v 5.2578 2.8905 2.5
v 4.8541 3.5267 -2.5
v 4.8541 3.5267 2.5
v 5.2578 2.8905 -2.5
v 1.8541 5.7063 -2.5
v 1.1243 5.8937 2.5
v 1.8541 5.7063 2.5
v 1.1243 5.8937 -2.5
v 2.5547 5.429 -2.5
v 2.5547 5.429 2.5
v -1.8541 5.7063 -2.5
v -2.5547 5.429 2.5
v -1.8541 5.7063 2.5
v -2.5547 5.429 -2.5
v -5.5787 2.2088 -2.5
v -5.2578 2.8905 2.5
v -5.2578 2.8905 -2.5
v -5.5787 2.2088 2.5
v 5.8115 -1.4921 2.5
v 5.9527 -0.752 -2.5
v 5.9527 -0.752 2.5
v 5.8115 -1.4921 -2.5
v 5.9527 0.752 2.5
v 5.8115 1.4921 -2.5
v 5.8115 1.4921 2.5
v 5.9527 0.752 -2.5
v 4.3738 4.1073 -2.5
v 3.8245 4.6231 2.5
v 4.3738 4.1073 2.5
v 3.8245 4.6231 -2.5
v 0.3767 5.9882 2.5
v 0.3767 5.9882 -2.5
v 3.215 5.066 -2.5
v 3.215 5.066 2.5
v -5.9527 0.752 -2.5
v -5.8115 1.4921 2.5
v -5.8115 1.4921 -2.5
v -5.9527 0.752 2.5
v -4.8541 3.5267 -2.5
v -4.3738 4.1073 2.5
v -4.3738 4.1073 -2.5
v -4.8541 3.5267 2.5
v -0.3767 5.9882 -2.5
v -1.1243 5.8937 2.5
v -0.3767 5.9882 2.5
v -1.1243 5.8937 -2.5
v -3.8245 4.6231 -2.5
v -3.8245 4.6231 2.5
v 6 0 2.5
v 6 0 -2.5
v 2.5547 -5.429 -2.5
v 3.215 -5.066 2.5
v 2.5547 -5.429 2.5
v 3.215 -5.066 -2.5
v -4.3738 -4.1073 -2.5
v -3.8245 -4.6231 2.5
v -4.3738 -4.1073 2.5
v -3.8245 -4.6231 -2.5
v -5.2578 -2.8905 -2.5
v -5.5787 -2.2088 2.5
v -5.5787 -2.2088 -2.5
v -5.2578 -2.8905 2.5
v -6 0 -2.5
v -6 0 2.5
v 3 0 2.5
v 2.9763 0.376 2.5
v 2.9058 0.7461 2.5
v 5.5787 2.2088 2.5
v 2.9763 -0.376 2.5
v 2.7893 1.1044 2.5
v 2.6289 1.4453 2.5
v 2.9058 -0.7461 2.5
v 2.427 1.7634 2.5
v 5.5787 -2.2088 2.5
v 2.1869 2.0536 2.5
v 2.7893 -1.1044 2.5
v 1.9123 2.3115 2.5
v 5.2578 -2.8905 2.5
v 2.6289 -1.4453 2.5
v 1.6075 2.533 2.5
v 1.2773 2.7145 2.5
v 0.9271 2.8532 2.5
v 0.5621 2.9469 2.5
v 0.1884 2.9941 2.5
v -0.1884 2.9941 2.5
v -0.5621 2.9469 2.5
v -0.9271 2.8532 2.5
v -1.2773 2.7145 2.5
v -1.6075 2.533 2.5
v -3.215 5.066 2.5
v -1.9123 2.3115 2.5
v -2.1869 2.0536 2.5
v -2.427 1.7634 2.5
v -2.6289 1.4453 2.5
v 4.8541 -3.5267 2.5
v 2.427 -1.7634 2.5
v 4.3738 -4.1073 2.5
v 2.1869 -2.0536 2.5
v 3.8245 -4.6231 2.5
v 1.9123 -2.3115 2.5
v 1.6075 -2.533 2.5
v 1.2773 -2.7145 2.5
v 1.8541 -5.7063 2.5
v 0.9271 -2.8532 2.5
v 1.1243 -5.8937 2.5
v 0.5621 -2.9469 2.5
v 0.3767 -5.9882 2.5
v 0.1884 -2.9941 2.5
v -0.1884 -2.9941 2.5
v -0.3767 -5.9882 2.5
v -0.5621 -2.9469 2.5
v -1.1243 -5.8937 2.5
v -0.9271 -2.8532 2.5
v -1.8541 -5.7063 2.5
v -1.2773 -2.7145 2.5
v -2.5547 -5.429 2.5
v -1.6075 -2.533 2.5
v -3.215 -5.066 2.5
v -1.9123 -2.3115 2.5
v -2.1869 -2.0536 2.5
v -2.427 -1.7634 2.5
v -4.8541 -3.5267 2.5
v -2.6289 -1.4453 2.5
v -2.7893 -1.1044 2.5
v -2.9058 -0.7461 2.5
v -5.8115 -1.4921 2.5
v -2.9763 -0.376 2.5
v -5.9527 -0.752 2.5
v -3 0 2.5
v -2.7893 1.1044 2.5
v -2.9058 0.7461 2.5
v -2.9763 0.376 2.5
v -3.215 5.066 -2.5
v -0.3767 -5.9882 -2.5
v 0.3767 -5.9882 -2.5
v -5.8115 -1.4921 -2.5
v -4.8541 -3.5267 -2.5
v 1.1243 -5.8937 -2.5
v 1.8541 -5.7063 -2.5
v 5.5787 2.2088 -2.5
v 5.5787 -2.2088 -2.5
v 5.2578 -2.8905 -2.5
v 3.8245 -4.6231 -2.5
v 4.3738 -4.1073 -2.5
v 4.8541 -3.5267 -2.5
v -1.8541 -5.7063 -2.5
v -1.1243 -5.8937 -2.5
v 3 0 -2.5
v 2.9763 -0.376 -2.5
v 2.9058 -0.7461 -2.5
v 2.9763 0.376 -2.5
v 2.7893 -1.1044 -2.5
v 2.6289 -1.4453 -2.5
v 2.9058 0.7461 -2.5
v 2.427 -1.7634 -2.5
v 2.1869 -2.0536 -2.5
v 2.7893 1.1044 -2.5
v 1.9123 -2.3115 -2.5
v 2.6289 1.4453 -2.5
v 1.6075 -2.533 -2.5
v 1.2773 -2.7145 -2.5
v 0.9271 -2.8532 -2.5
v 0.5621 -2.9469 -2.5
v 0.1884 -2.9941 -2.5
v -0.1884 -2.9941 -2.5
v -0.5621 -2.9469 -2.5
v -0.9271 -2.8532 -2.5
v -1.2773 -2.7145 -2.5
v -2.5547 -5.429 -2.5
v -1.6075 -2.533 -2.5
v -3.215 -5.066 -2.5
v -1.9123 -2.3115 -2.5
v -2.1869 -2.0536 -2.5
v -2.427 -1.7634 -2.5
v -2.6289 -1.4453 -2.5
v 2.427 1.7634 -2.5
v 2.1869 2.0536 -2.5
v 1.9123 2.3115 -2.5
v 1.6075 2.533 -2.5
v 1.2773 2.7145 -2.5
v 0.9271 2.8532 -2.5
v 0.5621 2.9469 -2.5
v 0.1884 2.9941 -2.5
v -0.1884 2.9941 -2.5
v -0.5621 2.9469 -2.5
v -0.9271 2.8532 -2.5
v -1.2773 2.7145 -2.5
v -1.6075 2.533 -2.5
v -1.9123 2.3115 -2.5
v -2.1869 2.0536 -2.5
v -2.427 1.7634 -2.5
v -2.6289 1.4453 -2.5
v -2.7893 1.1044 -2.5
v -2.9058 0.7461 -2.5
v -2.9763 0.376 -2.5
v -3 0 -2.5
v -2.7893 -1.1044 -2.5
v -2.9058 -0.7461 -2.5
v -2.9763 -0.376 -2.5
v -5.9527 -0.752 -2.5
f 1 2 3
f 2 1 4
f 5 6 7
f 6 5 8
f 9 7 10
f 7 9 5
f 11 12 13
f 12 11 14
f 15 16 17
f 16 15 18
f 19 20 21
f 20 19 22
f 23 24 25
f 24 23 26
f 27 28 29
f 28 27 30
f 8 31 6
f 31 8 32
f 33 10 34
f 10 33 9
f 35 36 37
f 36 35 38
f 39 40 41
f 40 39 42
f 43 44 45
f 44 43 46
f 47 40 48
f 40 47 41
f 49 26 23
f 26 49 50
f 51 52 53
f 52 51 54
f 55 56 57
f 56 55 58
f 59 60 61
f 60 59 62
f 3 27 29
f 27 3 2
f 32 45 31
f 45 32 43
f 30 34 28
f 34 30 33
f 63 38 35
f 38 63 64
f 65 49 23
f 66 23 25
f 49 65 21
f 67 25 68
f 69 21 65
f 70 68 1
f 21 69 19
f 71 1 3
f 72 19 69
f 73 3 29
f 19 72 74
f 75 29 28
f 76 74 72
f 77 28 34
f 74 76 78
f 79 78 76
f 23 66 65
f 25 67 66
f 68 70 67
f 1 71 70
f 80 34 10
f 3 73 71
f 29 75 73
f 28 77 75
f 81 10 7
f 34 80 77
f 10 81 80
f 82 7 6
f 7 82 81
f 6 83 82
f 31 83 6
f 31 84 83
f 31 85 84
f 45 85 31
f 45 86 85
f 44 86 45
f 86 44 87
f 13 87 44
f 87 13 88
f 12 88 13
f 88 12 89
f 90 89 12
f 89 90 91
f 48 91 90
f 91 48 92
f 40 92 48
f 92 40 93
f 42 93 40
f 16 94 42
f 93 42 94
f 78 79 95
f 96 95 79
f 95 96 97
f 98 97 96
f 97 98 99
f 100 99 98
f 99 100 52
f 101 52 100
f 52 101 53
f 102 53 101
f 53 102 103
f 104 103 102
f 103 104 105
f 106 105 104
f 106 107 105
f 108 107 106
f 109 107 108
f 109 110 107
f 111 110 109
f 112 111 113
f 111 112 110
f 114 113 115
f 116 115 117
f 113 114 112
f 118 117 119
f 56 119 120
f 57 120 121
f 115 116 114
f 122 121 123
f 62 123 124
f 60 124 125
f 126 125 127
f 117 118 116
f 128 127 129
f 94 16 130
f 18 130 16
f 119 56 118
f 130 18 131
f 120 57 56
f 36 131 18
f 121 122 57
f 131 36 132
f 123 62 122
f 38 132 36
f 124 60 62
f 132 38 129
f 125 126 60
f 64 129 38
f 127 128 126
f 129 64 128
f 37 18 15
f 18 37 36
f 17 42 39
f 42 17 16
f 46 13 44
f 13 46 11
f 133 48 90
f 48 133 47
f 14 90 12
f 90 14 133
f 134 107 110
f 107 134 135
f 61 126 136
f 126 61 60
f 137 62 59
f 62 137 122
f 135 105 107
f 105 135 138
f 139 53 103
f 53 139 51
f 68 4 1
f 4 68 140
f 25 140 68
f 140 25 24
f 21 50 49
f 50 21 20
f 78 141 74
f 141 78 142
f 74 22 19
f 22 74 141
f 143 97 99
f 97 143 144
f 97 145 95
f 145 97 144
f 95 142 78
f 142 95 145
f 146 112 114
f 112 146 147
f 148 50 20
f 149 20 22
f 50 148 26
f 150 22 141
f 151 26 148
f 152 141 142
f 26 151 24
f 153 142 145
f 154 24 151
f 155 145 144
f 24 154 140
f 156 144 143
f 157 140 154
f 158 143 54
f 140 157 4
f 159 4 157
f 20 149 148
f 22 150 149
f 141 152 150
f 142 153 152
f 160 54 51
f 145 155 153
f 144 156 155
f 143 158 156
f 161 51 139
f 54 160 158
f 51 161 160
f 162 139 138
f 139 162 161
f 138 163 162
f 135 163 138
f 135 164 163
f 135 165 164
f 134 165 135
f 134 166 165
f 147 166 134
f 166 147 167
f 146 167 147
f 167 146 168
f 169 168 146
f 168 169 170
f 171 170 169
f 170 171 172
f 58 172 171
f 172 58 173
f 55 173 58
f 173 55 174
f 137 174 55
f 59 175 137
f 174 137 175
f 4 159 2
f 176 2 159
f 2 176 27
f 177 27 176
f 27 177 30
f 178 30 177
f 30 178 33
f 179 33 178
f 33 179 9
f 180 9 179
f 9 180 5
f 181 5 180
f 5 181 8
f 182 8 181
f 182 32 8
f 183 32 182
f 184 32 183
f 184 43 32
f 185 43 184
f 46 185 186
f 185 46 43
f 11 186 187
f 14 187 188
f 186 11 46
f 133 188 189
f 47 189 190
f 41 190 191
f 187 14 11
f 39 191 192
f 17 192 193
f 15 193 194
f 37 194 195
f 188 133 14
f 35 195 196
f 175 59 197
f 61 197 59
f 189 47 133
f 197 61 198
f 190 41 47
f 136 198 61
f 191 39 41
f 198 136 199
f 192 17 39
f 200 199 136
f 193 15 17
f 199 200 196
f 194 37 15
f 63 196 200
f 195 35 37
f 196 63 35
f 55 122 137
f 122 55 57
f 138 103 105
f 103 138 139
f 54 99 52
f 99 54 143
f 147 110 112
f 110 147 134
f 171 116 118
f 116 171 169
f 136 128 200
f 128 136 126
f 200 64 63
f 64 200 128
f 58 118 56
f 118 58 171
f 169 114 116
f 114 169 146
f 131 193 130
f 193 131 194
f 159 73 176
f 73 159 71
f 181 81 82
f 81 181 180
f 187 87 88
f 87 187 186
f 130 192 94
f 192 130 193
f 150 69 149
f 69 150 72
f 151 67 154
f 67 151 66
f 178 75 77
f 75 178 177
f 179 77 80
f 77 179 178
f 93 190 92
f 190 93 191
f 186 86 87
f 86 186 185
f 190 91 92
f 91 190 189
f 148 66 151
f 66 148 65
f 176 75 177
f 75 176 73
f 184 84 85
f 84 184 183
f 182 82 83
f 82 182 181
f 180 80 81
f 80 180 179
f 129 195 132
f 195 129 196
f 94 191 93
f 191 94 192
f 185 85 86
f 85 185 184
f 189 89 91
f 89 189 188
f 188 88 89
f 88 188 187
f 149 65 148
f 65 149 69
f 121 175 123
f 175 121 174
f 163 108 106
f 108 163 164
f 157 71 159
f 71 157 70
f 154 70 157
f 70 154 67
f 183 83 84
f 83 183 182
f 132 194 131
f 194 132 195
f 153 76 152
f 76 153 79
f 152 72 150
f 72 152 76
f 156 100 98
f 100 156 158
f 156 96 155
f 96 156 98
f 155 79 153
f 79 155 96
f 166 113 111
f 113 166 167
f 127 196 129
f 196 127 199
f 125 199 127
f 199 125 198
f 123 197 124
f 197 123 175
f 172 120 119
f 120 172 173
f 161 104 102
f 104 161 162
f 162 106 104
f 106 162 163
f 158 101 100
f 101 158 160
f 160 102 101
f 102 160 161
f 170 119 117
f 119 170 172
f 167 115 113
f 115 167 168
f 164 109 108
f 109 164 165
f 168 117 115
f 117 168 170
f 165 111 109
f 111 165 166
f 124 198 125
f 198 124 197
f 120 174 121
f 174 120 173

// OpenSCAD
$fn = 50;


difference() {
	union() {
		translate(v = [0, 0, -2.5000000000]) {
			cylinder(h = 5, r = 6.0000000000);
		}
	}
	union() {
		translate(v = [0, 0, -100.0000000000]) {
			cylinder(h = 200, r = 3);
		}
	}
}
